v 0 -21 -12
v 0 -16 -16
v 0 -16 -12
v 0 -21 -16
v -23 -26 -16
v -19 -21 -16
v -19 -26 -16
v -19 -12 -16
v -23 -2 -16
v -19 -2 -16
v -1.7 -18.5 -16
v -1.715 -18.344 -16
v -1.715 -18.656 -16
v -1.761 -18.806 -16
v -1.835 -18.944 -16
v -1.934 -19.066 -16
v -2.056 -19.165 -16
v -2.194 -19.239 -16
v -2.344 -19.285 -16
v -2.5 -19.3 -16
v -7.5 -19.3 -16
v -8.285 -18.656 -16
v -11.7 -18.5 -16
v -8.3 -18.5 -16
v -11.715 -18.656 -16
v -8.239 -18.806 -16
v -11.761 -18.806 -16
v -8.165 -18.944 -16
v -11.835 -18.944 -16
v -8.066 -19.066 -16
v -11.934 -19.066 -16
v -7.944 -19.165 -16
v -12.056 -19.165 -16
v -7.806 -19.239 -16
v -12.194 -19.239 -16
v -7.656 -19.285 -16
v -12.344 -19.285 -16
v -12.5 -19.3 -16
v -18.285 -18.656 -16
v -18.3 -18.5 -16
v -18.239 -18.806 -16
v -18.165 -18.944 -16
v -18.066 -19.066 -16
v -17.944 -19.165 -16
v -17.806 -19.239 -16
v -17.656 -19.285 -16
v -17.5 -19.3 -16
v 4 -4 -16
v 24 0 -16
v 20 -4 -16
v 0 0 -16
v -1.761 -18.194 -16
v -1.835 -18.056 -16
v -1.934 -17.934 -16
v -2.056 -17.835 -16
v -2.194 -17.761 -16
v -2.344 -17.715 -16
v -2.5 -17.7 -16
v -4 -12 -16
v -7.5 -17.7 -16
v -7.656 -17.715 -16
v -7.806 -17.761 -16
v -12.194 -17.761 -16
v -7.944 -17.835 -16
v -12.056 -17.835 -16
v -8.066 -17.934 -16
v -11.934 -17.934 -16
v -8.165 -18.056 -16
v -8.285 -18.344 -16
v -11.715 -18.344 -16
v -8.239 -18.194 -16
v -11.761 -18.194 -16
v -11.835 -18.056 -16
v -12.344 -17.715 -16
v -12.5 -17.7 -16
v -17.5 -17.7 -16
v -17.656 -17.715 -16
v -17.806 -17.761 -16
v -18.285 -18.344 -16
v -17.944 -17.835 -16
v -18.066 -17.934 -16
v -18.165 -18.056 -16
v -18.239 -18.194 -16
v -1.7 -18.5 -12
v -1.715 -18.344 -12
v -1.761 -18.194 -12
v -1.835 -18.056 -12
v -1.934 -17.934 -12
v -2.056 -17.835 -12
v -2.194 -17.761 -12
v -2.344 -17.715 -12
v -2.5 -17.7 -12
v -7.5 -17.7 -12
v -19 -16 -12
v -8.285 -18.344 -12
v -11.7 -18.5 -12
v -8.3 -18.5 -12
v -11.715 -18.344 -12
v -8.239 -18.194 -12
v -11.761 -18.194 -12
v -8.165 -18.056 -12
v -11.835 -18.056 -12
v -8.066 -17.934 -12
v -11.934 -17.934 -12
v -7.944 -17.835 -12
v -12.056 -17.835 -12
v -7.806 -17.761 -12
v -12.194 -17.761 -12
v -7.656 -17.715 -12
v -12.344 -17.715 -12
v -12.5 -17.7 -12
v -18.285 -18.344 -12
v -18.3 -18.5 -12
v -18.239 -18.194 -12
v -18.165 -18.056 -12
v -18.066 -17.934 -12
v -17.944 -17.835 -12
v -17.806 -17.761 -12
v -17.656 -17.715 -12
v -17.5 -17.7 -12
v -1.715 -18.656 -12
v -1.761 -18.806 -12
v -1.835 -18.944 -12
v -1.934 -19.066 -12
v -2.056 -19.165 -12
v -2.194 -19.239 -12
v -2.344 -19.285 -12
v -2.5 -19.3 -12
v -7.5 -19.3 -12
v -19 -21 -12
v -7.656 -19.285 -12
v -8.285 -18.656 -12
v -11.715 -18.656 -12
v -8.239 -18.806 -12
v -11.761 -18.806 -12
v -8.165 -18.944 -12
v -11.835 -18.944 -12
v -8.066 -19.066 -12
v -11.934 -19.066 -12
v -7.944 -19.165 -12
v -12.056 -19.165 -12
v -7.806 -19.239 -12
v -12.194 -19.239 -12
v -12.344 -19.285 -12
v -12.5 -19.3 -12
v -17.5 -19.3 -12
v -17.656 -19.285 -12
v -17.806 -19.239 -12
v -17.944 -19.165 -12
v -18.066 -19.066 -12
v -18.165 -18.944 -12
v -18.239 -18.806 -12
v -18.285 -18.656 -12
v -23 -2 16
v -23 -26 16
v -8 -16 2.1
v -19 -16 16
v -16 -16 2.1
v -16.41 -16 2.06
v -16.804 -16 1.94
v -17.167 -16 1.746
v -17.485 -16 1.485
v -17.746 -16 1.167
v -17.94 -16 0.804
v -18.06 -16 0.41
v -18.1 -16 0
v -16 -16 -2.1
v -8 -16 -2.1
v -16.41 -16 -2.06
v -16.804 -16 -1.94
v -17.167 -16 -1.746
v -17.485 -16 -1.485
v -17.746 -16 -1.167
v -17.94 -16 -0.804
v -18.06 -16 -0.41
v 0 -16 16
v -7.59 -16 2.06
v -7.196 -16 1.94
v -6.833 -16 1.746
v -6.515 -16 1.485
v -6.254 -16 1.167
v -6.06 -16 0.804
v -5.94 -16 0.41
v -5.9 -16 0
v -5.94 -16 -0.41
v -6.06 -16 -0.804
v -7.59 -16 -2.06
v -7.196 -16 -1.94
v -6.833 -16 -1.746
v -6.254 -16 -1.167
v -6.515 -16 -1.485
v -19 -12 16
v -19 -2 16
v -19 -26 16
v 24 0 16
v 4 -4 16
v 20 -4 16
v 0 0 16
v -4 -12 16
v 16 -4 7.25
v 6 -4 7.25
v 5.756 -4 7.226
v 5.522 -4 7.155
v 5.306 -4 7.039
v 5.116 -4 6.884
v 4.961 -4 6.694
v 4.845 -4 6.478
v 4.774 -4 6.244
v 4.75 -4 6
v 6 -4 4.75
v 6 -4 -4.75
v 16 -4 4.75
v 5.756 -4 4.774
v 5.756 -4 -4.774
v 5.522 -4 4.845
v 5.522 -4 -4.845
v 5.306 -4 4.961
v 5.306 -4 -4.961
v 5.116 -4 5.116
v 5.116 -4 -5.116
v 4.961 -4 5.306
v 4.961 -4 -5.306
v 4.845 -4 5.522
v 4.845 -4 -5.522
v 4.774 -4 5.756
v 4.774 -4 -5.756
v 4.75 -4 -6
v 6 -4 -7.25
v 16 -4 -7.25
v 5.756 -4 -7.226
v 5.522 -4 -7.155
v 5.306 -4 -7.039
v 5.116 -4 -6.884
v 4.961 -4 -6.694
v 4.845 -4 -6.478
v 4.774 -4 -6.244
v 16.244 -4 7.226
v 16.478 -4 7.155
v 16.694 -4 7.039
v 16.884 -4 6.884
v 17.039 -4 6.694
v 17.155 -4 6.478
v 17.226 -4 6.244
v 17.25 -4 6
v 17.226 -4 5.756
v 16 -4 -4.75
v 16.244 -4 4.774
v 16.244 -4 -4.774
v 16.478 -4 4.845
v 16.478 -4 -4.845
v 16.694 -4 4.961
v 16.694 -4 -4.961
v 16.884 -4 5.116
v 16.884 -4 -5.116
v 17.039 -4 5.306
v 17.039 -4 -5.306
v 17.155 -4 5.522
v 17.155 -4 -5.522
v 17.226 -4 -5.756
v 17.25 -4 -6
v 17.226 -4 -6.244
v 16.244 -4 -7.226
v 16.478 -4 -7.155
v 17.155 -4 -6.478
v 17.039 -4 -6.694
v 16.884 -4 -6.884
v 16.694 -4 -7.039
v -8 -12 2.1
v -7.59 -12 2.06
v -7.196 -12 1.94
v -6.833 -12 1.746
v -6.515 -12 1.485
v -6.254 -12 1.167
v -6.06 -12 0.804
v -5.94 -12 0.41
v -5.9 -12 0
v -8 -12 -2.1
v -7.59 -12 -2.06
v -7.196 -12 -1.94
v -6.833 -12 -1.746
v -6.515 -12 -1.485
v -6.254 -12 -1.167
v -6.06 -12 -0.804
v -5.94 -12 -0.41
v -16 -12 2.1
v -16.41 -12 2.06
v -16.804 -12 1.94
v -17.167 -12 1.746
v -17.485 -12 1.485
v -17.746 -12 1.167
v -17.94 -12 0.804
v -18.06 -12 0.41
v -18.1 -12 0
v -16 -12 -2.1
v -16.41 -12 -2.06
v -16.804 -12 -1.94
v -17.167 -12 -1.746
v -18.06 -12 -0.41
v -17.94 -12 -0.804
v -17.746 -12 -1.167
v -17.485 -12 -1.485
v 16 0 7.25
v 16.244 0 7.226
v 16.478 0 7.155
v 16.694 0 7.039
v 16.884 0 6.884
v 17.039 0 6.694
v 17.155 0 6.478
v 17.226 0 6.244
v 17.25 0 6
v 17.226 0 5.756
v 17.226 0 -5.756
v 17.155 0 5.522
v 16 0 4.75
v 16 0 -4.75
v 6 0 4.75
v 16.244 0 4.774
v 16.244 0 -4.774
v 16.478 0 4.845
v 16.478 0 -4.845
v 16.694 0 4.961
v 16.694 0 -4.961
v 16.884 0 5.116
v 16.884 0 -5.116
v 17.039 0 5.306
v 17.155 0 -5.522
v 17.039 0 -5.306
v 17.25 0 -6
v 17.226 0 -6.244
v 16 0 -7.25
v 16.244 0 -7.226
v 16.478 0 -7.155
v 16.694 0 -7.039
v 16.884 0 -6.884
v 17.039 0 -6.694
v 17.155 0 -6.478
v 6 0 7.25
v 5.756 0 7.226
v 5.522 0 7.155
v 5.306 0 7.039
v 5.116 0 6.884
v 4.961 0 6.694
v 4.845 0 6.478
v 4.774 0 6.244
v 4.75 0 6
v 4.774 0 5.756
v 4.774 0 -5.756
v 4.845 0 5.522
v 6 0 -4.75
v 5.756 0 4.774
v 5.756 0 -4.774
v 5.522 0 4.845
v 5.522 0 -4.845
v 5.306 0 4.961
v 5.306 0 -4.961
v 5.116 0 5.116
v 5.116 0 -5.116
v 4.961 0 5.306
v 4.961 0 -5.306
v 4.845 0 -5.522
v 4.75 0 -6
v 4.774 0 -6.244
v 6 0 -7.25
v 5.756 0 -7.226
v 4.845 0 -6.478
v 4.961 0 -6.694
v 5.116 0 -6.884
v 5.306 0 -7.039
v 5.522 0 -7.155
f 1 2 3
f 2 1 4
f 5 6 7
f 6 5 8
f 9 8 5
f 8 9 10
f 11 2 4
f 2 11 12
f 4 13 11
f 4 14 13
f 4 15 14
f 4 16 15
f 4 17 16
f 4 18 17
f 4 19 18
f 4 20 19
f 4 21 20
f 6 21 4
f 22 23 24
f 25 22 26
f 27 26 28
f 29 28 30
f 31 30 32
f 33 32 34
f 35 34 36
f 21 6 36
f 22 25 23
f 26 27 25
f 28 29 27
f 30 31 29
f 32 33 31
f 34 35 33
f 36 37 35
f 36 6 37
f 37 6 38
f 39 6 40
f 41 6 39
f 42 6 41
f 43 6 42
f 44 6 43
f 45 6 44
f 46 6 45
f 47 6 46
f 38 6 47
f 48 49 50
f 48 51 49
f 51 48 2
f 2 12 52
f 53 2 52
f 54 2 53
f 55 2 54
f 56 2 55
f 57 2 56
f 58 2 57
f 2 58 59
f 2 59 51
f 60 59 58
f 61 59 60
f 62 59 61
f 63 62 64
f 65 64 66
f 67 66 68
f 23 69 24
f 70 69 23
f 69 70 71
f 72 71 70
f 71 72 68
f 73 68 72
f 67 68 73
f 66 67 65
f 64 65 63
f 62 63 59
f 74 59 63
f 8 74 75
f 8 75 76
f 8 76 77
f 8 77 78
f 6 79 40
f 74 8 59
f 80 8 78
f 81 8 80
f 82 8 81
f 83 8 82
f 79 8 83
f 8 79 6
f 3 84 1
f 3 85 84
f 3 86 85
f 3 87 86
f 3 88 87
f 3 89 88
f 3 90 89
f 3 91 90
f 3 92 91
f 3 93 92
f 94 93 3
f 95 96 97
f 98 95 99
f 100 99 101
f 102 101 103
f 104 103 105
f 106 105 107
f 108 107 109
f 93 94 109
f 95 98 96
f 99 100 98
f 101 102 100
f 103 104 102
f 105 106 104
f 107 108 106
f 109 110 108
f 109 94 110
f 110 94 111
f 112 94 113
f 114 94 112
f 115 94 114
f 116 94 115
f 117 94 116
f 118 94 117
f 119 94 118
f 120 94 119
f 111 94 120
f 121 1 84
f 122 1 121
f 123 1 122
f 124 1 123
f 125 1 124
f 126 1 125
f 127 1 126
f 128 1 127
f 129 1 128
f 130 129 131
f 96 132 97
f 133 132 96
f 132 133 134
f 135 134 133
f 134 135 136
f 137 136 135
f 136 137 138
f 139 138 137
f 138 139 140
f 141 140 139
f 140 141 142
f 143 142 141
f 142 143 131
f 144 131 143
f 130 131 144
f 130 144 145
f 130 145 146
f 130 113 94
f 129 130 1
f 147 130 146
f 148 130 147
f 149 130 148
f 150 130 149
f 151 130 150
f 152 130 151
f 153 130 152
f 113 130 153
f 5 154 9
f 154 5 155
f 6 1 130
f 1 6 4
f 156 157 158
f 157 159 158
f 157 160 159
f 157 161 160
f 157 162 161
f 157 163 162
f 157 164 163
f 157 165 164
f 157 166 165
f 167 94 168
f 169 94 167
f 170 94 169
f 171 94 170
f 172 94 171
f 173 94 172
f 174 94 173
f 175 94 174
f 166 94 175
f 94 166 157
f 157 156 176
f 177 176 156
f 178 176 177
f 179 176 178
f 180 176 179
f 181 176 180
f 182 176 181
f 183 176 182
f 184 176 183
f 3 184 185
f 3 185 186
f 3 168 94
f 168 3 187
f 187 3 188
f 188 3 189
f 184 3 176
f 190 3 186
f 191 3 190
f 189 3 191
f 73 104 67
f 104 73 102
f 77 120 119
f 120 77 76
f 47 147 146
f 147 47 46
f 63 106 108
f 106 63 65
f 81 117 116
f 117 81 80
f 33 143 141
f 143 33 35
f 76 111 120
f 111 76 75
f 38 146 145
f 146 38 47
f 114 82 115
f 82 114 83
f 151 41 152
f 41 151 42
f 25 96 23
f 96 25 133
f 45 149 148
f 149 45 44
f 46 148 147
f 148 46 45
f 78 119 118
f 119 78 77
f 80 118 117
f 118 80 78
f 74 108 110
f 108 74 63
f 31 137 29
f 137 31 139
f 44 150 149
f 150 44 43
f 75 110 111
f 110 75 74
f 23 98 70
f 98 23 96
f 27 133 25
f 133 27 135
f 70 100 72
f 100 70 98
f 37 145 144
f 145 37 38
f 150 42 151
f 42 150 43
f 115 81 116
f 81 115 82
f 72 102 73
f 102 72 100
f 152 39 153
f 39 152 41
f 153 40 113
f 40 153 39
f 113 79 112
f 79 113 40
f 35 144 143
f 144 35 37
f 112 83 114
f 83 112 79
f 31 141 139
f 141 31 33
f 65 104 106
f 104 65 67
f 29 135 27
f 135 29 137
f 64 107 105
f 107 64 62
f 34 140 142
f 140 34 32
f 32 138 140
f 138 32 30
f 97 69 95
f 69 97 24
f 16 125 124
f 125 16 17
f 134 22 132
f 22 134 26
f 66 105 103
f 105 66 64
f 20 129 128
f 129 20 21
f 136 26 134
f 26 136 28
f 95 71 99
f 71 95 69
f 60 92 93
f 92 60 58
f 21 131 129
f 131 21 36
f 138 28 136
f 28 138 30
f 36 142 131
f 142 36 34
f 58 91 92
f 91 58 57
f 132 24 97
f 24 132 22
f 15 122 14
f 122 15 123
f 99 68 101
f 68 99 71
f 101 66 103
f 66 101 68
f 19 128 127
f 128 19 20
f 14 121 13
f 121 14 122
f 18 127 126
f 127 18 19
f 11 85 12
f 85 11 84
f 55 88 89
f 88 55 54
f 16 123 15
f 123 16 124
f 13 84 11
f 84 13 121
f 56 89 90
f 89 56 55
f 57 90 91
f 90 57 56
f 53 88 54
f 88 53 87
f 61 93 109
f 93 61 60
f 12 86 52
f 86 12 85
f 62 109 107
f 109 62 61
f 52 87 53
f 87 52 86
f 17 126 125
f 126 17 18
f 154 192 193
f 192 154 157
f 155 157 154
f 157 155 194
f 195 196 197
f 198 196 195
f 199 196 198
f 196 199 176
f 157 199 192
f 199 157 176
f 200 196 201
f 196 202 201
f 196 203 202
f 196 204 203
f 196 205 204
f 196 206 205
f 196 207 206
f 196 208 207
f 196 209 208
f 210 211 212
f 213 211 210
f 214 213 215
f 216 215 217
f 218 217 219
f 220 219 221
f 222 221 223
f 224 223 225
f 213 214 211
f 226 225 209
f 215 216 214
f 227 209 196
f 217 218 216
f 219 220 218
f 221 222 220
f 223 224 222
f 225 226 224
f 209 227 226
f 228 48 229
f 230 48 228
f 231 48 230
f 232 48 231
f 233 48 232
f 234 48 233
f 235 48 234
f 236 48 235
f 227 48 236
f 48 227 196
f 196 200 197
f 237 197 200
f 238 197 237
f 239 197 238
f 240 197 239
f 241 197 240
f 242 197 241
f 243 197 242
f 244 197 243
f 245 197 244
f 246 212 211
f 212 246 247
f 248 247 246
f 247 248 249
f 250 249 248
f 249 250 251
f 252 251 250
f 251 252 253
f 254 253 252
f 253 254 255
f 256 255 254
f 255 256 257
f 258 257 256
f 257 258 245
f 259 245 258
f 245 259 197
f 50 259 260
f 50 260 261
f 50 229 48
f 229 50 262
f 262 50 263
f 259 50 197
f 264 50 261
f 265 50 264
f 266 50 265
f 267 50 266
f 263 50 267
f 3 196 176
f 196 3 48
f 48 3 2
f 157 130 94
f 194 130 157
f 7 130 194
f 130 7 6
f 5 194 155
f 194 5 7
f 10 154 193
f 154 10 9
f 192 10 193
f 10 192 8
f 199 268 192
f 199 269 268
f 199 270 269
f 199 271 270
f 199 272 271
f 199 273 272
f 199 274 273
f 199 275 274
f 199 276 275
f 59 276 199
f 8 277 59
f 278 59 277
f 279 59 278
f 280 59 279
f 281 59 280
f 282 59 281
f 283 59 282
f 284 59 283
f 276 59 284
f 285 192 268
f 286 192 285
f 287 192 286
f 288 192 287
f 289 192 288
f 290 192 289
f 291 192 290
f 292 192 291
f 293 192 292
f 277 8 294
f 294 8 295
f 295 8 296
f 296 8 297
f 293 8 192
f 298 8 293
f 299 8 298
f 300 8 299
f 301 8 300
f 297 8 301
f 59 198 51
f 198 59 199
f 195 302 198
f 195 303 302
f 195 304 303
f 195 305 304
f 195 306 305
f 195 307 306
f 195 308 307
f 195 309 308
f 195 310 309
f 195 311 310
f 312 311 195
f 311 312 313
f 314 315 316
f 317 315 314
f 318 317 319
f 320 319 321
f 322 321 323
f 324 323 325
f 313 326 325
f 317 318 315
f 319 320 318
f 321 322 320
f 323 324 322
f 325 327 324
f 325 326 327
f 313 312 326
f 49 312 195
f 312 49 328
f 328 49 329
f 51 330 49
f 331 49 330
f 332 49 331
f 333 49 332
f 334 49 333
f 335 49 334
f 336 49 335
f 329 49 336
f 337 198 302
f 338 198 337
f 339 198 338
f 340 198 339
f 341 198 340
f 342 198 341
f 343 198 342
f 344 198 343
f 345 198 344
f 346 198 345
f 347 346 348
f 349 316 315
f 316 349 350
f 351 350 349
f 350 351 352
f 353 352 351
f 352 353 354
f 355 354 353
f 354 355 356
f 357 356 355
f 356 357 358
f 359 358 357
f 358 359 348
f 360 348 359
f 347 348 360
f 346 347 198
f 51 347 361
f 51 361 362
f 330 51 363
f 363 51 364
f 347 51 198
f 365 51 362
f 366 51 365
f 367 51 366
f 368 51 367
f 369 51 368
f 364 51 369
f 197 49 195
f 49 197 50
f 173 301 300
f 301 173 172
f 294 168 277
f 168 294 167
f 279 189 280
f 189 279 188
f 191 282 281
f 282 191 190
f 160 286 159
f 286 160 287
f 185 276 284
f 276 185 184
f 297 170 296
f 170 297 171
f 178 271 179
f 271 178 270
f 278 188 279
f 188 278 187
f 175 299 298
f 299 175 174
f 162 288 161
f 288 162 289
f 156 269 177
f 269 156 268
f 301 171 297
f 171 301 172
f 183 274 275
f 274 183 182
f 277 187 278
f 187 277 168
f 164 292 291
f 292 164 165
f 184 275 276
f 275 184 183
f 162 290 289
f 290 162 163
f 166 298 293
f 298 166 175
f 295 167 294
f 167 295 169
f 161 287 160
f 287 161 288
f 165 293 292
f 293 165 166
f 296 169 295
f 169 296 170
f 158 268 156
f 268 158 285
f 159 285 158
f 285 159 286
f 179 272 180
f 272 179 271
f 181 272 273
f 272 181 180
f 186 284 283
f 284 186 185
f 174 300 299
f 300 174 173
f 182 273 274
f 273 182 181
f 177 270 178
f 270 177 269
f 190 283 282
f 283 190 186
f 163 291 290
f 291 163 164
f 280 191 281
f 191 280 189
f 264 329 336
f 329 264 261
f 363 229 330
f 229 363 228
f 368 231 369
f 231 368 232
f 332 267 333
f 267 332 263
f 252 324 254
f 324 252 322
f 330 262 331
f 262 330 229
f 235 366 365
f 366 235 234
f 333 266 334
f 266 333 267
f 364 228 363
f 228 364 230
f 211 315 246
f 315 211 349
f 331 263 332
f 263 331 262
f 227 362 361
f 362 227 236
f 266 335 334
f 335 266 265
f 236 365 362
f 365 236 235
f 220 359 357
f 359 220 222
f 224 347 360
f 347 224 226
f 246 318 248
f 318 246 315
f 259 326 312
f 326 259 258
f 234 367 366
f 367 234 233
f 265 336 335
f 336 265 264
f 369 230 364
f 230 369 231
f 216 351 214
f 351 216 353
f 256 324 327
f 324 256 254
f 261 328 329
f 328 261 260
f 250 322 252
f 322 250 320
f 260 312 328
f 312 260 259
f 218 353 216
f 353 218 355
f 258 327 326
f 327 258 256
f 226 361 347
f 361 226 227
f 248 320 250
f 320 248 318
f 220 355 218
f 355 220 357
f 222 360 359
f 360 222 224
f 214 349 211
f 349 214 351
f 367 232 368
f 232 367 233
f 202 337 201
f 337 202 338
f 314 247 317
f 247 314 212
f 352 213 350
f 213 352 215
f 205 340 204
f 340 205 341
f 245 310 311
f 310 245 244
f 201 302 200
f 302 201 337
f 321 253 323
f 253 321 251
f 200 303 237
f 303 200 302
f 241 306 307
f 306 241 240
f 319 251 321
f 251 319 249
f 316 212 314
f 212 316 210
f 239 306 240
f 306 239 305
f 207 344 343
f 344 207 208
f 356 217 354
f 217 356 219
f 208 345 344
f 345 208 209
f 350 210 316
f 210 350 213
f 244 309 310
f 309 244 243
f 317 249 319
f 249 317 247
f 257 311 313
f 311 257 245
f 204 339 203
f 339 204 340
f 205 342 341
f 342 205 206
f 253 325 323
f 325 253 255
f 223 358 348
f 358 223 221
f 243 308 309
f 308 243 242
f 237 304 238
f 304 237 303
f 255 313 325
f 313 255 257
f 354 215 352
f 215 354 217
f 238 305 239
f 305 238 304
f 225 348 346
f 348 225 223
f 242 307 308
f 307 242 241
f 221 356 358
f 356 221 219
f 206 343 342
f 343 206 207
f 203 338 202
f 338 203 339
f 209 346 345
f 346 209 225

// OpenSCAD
/* Copyright (c) 2022  Paulo Costa
   All rights reserved.

   Redistribution and use in source and binary forms, with or without
   modification, are permitted provided that the following conditions are met:

   * Redistributions of source code must retain the above copyright
     notice, this list of conditions and the following disclaimer.
   * Redistributions in binary form must reproduce the above copyright
     notice, this list of conditions and the following disclaimer in
     the documentation and/or other materials provided with the
     distribution.
   * Neither the name of the copyright holders nor the names of
     contributors may be used to endorse or promote products derived
     from this software without specific prior written permission.

  THIS SOFTWARE IS PROVIDED BY THE COPYRIGHT HOLDERS AND CONTRIBUTORS "AS IS"
  AND ANY EXPRESS OR IMPLIED WARRANTIES, INCLUDING, BUT NOT LIMITED TO, THE
  IMPLIED WARRANTIES OF MERCHANTABILITY AND FITNESS FOR A PARTICULAR PURPOSE
  ARE DISCLAIMED. IN NO EVENT SHALL THE COPYRIGHT OWNER OR CONTRIBUTORS BE
  LIABLE FOR ANY DIRECT, INDIRECT, INCIDENTAL, SPECIAL, EXEMPLARY, OR
  CONSEQUENTIAL DAMAGES (INCLUDING, BUT NOT LIMITED TO, PROCUREMENT OF
  SUBSTITUTE GOODS OR SERVICES; LOSS OF USE, DATA, OR PROFITS; OR BUSINESS
  INTERRUPTION) HOWEVER CAUSED AND ON ANY THEORY OF LIABILITY, WHETHER IN
  CONTRACT, STRICT LIABILITY, OR TORT (INCLUDING NEGLIGENCE OR OTHERWISE)
  ARISING IN ANY WAY OUT OF THE USE OF THIS SOFTWARE, EVEN IF ADVISED OF THE
  POSSIBILITY OF SUCH DAMAGE. */

module switch_upport() {
  difference() {
    cube([23, 5, 4], center = true);  
    
    hull() {
      translate([-1, 0, 0])
      rotate([0, 0, 90])
      cylinder(d = 1.6, h = 10, center = true);

      translate([-6, 0, 0])
      rotate([0, 0, 90])
      cylinder(d = 1.6, h = 10, center = true);
    }

    hull() {
      translate([9, 0, 0])
      rotate([0, 0, 90])
      cylinder(d = 1.6, h = 10, center = true);

      translate([4, 0, 0])
      rotate([0, 0, 90])
      cylinder(d = 1.6, h = 10, center = true);
    }
  }  
}

module ratf_solenoid() {
  $fn = 32;
  sw = 4;
  sh = 16;
  disp_u = 4;
  difference() {
    union() {
      linear_extrude(height = 32, center = true, convexity = 10, twist = 0)
      polygon(points = [[0, 0], 
                        [24, 0],
                        //[24, -20],
                        //[24 + sw, -20],
                        [24 - sw, sw],
                        [24, sw],
                        [sw, sw],
                        [sw - disp_u, sh],
                        [-19 - disp_u + sw, sh],
                        [-19 - disp_u + sw, sh + 10],
                        [-19 - disp_u, sh + 10],
                        [-19 - disp_u, sh - sw - 10],
                        [-19 + sw - disp_u, sh - sw - 10],
                        [-19 + sw - disp_u, sh - sw],
                        [-disp_u, sh - sw],
                        [0, 0]
                       ]);
      
      // Switch Support
      translate([-11.5, 18.5, 14])
      switch_upport();
      
      
      //translate([-11.5, 18.5, -14])
      //switch_upport();
    }    
  
    
    // center hole
    hull() {
      translate([-26/2 - 3, 0, 0])
      rotate([90, 0, 0])
      cylinder(d = 4.2, h = 200, center = true);

      translate([-26/2 + 5, 0, 0])
      rotate([90, 0, 0])
      cylinder(d = 4.2, h = 200, center = true);
    }

    // body holes
    hull() {
      translate([6, 0, 12/2])
      rotate([90, 0, 0])
      cylinder(d = 2.5, h = 200, center = true); 

      translate([16, 0, 12/2])
      rotate([90, 0, 0])
      cylinder(d = 2.5, h = 200, center = true); 
    }

    hull() {
      translate([6, 0, -12/2])
      rotate([90, 0, 0])
      cylinder(d = 2.5, h = 200, center = true); 

      translate([16, 0, -12/2])
      rotate([90, 0, 0])
      cylinder(d = 2.5, h = 200, center = true); 
    }

  }
}

rotate([180, 0, 0])
ratf_solenoid();
